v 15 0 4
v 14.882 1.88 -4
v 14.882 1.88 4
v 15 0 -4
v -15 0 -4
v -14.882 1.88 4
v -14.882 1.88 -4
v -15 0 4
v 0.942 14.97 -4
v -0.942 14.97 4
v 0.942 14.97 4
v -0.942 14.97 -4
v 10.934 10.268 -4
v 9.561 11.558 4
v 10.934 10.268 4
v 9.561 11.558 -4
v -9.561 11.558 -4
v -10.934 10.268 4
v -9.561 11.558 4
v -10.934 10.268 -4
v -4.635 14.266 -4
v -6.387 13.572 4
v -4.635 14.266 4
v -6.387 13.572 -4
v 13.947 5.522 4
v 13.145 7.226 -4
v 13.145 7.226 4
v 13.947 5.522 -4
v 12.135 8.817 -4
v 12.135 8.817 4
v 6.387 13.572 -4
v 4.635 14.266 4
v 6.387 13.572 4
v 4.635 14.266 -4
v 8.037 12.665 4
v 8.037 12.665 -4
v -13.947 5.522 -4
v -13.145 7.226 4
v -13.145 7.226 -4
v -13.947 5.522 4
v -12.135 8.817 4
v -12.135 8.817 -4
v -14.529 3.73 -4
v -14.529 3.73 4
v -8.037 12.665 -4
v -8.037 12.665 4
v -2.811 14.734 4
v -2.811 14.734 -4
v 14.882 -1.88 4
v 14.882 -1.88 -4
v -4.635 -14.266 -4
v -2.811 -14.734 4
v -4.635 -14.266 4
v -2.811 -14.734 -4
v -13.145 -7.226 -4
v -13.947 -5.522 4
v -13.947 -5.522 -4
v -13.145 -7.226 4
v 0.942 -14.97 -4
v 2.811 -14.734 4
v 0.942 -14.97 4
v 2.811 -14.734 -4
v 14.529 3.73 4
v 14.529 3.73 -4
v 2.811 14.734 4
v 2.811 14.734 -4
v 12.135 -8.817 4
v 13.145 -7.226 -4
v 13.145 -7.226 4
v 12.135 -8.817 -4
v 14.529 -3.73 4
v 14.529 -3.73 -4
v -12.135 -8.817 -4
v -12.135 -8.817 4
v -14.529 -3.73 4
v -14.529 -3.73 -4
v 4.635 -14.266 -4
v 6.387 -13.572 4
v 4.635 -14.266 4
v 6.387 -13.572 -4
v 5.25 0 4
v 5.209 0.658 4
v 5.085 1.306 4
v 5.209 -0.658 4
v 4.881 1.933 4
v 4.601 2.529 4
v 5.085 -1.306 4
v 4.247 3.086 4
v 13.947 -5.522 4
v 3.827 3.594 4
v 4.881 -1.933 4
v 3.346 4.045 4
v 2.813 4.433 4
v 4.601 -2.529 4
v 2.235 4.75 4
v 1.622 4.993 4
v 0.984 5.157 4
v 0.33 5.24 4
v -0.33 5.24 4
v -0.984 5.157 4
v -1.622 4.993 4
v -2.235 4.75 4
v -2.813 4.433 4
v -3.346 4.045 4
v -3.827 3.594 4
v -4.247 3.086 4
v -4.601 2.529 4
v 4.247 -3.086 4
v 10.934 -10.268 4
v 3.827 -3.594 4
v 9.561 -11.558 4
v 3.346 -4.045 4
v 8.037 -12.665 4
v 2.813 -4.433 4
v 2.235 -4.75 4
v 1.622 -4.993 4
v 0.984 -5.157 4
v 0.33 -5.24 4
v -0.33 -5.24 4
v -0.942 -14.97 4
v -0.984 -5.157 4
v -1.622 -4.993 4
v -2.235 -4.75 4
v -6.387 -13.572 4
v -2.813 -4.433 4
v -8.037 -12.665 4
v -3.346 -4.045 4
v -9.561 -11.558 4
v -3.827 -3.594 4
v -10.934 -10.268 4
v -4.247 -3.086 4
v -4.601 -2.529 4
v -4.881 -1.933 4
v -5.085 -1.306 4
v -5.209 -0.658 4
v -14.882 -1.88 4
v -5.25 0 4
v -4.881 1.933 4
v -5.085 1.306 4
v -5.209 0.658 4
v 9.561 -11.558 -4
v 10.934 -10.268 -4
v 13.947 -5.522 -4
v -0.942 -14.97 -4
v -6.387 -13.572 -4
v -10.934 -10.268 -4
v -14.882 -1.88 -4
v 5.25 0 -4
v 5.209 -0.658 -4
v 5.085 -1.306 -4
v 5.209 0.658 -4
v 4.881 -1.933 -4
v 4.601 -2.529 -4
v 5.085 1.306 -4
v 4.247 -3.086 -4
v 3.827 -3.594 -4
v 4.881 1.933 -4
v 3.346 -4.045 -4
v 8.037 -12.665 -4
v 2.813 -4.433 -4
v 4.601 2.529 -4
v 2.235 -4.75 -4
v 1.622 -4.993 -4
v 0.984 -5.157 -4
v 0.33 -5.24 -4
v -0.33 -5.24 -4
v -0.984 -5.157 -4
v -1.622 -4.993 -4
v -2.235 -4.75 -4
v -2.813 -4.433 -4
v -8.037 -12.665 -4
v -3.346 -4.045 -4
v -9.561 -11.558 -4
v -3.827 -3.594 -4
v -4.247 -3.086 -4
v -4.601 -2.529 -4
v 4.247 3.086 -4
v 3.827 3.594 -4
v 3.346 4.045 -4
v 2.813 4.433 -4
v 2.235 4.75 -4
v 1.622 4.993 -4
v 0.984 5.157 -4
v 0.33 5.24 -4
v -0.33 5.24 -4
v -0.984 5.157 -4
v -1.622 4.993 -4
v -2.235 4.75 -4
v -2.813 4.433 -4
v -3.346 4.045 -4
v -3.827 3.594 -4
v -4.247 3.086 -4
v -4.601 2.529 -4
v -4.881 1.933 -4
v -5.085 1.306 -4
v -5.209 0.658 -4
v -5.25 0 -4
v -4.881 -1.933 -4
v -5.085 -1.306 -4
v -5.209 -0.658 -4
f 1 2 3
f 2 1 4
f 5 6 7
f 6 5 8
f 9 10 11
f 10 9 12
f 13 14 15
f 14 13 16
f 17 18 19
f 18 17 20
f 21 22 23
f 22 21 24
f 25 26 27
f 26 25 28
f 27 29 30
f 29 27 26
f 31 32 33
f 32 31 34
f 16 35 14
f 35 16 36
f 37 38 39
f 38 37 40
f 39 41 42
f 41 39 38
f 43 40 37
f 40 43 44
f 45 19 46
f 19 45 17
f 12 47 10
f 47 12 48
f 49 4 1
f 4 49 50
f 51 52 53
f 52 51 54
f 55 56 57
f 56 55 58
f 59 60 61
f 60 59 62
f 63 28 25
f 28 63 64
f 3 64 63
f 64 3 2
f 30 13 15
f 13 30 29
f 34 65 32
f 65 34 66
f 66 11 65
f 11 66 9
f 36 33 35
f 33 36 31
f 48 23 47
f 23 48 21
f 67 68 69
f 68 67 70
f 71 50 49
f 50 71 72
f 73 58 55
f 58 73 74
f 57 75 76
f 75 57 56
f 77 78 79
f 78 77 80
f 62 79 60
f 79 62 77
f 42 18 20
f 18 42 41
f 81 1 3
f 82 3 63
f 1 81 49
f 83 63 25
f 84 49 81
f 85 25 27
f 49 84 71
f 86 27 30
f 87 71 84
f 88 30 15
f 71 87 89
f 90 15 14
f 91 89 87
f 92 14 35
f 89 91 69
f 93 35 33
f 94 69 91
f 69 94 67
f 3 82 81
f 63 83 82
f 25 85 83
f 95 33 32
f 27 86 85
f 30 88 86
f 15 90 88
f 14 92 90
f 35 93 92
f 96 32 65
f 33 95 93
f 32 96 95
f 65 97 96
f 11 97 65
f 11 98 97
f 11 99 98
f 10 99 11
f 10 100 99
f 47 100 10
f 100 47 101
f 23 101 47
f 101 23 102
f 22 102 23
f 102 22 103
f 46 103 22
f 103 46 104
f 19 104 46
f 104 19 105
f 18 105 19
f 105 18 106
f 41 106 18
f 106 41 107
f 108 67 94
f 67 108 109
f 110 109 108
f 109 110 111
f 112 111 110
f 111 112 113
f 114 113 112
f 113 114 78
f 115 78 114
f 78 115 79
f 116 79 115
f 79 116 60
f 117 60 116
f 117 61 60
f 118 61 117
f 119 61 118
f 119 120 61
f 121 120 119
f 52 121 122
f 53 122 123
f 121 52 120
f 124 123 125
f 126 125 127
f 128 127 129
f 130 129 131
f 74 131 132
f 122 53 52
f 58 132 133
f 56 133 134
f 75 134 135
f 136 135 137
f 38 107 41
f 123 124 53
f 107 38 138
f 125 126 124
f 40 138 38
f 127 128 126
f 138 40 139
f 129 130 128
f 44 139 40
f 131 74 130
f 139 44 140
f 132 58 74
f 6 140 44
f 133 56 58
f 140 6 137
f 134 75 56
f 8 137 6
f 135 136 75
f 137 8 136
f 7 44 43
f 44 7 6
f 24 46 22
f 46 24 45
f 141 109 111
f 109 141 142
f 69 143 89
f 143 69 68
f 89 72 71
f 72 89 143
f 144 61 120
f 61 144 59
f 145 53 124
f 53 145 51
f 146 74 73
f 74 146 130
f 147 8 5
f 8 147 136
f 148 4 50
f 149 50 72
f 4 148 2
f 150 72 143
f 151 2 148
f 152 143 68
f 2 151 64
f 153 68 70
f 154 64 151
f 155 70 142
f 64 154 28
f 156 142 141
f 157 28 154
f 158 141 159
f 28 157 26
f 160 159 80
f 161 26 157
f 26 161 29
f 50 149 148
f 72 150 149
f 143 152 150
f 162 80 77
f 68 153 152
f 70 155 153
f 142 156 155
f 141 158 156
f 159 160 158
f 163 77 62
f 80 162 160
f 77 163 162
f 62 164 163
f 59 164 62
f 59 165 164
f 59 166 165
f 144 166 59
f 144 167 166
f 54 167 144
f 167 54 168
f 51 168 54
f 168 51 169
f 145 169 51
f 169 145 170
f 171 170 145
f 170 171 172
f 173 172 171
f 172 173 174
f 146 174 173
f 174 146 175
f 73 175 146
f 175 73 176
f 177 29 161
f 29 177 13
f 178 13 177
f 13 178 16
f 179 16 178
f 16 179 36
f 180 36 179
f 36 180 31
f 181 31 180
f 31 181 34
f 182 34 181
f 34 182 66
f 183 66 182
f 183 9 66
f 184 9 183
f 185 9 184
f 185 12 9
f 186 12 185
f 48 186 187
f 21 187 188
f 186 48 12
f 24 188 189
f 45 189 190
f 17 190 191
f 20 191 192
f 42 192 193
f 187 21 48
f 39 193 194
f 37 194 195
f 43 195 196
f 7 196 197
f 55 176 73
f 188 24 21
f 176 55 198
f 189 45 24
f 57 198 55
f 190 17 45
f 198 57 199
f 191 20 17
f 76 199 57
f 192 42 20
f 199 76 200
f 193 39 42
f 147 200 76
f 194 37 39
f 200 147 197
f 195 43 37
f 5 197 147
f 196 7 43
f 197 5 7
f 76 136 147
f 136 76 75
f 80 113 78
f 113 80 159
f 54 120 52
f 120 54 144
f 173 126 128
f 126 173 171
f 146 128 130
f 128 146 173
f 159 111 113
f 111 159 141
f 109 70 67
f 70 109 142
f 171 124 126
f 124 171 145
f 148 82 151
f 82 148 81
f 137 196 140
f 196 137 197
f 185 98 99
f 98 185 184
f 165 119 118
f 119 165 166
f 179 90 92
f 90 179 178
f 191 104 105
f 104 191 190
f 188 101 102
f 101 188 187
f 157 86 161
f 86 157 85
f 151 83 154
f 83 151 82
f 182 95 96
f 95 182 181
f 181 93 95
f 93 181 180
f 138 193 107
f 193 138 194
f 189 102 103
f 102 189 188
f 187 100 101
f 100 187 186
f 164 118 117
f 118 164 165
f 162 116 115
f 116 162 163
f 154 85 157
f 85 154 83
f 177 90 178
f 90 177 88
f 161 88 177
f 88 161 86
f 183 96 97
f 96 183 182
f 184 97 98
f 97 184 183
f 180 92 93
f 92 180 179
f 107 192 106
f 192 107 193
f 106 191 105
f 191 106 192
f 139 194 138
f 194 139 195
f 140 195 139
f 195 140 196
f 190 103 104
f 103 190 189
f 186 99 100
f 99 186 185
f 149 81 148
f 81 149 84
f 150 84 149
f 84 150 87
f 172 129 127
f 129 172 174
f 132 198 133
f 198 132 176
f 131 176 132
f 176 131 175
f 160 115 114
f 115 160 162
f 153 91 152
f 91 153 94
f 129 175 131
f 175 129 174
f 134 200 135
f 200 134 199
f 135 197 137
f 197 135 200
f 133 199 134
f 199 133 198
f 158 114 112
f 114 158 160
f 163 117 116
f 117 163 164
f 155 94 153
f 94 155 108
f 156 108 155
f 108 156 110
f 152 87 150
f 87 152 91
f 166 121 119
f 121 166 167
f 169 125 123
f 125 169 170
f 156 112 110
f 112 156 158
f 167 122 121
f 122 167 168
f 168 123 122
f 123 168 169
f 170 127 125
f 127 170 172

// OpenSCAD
$fn = 50;


difference() {
	union() {
		translate(v = [0, 0, -4.0000000000]) {
			cylinder(h = 8, r = 15.0000000000);
		}
	}
	union() {
		translate(v = [0, 0, -100.0000000000]) {
			cylinder(h = 200, r = 5.2500000000);
		}
	}
}
